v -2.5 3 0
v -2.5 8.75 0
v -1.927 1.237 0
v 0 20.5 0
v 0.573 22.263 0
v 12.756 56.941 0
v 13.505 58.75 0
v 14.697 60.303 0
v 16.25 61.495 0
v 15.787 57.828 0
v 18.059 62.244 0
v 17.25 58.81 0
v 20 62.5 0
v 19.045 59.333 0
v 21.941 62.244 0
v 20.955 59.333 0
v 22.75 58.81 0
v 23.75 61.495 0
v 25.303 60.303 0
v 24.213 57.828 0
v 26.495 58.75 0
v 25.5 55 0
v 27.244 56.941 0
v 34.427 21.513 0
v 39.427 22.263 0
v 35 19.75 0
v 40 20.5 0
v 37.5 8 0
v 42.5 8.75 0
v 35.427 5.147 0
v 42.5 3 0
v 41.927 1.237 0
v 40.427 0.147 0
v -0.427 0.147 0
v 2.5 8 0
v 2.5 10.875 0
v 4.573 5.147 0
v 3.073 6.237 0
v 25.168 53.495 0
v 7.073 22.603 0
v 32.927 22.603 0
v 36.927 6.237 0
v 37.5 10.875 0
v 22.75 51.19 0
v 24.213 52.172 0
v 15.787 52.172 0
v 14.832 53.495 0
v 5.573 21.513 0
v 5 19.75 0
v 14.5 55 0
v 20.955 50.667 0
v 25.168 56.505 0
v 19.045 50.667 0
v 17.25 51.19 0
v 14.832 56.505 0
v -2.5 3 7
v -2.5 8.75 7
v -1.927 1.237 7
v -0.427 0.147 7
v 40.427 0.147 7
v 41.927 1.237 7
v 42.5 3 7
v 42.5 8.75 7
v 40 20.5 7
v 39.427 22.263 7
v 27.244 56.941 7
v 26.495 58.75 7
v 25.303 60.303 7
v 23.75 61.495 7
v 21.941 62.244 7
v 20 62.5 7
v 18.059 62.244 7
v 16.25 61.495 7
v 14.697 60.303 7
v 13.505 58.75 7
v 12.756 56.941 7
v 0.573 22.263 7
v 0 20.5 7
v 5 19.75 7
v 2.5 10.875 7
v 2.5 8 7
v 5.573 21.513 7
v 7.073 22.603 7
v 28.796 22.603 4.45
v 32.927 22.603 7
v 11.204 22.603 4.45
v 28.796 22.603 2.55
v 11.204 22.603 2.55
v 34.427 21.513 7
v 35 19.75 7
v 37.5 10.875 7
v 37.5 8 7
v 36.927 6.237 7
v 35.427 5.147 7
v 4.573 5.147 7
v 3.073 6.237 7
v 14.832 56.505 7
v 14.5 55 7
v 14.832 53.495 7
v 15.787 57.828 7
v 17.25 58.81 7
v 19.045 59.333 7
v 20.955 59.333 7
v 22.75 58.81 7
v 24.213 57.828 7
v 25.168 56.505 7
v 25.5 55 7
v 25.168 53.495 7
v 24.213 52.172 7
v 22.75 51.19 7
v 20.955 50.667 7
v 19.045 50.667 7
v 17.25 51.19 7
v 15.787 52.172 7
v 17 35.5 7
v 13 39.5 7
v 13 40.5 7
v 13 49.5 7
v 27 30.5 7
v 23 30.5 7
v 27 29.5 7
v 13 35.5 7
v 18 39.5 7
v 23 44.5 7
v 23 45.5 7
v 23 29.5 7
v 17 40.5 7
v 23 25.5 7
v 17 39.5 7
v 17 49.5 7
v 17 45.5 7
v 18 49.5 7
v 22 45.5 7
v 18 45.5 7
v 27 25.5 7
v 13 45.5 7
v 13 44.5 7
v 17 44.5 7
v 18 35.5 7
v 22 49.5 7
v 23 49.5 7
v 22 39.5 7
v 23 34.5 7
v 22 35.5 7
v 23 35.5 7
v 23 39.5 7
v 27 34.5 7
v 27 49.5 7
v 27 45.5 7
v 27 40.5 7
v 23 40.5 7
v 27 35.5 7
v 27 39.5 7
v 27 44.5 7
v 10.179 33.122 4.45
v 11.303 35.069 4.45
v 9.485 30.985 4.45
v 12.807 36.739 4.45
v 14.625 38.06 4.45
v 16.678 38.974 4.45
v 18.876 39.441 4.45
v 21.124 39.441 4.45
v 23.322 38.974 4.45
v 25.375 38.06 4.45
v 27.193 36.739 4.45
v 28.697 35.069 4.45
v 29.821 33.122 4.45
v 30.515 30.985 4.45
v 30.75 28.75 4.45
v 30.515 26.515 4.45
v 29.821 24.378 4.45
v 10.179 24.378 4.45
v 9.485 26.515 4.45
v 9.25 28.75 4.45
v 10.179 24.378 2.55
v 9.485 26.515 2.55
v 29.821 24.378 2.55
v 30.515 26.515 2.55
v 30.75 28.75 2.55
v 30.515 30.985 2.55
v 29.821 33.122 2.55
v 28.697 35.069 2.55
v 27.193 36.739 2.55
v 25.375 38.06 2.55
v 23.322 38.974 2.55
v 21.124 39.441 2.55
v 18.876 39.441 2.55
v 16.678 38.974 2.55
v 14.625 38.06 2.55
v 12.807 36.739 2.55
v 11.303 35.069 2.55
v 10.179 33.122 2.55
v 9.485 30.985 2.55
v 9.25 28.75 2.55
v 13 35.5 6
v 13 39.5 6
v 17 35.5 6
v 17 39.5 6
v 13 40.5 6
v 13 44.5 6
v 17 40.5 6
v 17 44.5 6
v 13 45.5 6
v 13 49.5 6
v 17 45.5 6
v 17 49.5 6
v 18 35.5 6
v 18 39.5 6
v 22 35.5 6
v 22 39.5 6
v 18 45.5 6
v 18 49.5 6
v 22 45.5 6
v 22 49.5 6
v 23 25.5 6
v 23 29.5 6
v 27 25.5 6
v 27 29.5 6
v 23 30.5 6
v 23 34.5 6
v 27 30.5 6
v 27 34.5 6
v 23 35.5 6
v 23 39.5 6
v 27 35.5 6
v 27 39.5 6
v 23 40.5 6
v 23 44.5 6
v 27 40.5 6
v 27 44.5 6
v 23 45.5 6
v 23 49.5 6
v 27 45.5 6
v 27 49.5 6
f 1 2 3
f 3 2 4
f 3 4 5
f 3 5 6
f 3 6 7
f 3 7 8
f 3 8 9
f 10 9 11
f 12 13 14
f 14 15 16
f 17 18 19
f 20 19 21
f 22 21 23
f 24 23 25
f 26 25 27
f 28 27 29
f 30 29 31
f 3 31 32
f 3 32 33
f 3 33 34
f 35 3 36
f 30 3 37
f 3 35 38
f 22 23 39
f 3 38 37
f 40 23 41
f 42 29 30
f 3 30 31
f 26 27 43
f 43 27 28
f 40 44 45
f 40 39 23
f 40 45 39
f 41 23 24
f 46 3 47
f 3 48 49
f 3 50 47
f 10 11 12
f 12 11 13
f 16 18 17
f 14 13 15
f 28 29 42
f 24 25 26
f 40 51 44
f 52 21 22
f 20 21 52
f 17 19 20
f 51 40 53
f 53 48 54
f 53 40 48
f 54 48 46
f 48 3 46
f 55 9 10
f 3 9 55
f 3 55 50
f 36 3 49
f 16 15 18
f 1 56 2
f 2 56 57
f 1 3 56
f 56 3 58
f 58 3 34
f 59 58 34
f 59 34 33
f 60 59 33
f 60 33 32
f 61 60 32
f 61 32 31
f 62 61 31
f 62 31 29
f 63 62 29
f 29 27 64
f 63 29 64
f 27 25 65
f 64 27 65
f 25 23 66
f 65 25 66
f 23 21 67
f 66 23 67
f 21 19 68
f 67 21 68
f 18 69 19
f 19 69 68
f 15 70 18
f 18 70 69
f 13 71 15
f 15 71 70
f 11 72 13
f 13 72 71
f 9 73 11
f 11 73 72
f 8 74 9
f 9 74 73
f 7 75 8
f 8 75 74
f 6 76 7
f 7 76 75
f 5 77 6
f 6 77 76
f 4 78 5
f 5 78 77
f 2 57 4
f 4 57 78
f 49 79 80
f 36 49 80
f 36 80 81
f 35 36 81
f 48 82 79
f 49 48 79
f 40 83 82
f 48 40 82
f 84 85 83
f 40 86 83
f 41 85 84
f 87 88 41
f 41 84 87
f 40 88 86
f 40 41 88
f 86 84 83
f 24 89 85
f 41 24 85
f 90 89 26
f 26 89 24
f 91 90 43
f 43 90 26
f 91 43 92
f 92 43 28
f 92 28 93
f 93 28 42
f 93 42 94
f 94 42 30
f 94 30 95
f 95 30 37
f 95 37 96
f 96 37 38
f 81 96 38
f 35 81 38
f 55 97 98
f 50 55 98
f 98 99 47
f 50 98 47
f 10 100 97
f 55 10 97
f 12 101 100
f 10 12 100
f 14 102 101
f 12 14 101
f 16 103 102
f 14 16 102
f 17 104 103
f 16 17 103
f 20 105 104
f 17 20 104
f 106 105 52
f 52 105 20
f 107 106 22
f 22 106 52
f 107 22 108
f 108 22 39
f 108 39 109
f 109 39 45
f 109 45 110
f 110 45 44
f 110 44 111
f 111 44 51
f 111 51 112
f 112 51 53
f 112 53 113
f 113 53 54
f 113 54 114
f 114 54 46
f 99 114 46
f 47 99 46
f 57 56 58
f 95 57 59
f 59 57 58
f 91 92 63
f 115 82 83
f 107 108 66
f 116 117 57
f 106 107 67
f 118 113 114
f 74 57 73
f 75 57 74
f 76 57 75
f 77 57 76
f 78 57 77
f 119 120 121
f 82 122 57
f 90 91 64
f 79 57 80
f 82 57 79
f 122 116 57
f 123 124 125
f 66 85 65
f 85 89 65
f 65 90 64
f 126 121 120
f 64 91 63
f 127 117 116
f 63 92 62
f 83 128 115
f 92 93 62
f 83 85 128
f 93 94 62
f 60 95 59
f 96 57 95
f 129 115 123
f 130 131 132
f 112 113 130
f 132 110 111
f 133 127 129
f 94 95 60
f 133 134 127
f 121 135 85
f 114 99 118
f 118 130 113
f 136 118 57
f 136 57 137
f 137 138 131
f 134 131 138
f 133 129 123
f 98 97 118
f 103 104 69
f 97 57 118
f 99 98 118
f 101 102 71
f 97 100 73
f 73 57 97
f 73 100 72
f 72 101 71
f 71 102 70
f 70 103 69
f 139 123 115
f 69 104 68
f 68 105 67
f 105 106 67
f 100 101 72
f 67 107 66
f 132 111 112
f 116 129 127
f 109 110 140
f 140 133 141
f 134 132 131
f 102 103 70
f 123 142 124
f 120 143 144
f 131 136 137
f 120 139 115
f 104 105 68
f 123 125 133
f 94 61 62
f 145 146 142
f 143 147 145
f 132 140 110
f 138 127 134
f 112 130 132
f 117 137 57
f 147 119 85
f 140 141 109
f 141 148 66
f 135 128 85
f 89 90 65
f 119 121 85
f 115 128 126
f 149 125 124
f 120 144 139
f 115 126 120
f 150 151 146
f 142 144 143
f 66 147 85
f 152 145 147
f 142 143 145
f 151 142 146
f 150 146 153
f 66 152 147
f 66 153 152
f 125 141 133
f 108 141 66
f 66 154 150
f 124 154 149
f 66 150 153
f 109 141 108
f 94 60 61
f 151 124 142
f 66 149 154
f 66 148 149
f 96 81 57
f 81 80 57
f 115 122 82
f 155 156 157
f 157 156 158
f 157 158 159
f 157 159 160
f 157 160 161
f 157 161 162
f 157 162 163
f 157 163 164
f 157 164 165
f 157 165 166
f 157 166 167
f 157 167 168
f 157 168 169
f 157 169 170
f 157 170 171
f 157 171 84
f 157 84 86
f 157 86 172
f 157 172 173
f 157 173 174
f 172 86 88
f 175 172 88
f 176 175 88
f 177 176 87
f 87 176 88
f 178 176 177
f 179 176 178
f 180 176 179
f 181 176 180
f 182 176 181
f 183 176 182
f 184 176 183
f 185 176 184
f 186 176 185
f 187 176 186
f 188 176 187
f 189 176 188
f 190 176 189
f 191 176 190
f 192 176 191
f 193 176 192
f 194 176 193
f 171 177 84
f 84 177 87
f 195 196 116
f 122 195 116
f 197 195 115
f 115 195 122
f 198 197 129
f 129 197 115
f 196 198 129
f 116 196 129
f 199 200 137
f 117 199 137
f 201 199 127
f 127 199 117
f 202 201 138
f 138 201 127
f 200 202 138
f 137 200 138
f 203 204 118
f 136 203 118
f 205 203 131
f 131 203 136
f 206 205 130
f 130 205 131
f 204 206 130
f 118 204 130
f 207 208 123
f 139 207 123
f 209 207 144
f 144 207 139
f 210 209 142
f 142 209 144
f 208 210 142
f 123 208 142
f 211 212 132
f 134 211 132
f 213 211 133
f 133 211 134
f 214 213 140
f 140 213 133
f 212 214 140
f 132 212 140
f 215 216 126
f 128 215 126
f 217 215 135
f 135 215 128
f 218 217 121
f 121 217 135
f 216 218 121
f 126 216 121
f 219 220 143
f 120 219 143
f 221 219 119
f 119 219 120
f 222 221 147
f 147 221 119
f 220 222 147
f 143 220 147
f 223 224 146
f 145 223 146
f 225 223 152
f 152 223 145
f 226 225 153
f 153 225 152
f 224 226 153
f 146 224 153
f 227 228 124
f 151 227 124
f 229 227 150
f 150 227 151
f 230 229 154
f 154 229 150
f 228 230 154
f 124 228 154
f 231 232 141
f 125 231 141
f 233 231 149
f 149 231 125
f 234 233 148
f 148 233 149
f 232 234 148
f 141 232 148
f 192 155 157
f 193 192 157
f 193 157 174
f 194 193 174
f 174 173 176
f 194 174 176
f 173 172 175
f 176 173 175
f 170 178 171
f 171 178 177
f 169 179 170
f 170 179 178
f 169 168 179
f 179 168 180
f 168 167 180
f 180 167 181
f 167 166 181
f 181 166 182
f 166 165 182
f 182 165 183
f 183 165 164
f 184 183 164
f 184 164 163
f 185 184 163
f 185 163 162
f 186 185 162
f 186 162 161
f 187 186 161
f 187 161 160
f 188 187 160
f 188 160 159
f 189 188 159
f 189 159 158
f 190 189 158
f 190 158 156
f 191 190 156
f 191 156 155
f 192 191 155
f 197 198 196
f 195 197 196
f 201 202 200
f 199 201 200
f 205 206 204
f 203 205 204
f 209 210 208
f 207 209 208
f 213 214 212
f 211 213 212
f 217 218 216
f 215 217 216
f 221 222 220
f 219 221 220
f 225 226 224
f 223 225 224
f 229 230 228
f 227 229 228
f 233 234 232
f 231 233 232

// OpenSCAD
// file: drawBitmap.scad
/**
 * drawBitmap module
 * By Niek Blankers <niek@niekproductions.com>
 *
 * @param	array		bits			Bitmap array
 * @param	decimal	cubeSpacing	
 * @param	decimal	cubeSize
 *
 * Example:
 *
	bits=[
	[1,0,0],
	[1,0,0],
	[1,1,1],
	[1,0,1],
	[1,1,1]
	];
	cubeSize = 4;
	cubeSpacing = 5;

	drawBitmap(bits, cubeSpacing, cubeSize);
 *
 */

module drawBitmap(bits, cubeSpacing, cubeSize){
	rotate(a=180, v=[1,0,0]){
		for(i=[0:len(bits)-1]){
			translate([0,i*cubeSpacing,0]){
				cube(size = bits[i][0]*cubeSize, center = true);
				translate([cubeSpacing,0,0]) cube(size = bits[i][1]*cubeSize, center = true);
				translate([2*cubeSpacing,0,0]) cube(size = bits[i][2]*cubeSize, center = true);
			}
		}
	}
}
// main file
/**
 * Coin bottle opener
 * Designed by Niek Blankers <niek@niekproductions.com>
 * 
 * Set fill to 90-100% for best results.
 * Insert coin during printing!
 * 
 */
include <drawBitmap.scad>;


/**
 * 50 euro cent coin:
 * Diameter: 24.5
 * Thickness: 2.5
 * 
 * 5 euro cent coin:
 * Diameter: 21.5
 * Thickness: 1.9
 */

coinDiameter = 21.5;
coinThickness = 1.9;
coinOffset = 6;
coinAngle = 0;

width=40;
length=70;
height=7;

frontWidth=45;

roundRadius=3;

edgeWidth=5;

openingWidth=width-(edgeWidth*2);
openingLength=13+coinDiameter/2-coinOffset;
openingHeight=height;
frontOpeningWidth=openingWidth+5;

backWidth = 15;
frontLength = openingLength+edgeWidth+coinDiameter/2-10;

chainHole = backWidth-4; //Keychain hole diameter

// For the Bitmap
bits=[
	[1,0,0],
	[1,0,0],
	[1,1,1],
	[1,0,1],
	[1,1,1]
];

cubeSize = 4;
cubeSpacing = 5;


module handle(){
	difference(){
		hull(){
				translate([-(frontWidth-width)/2,0,0]) roundedRect([frontWidth,frontLength/2,height], roundRadius);
				translate([0,frontLength/2,0]) roundedRect([width,frontLength/2,height], roundRadius);
				translate([width/2,length-backWidth,height/2]) cylinder(h=height, d=backWidth, center=true);
		}
		translate([width/2 + cubeSpacing,frontLength + (length-frontLength)/((length-frontLength)/cubeSize),height+1]) rotate(a=[0,0,180]) drawBitmap(bits, cubeSpacing, cubeSize);
	}
}

module logo(){
	
}

module opener(){

	difference(){

		handle();

		translate([(width/2)-(openingWidth/2),edgeWidth,-1]) hull(){
			translate([-(frontOpeningWidth-openingWidth)/2,0,0]) roundedRect([frontOpeningWidth,openingLength/2,openingHeight+2], roundRadius);
			translate([0,openingLength/2,0]) roundedRect([openingWidth,openingLength/2,openingHeight+2], roundRadius);
		}

		#translate([width/2,edgeWidth+openingLength+coinOffset,height/2]) rotate(a=-coinAngle,v=[1,0,0]){
			cylinder(h = coinThickness, d = coinDiameter, center = true);
		}

		translate([width/2,length-backWidth,height/2]) scale([1.0,0.8,1.0]) cylinder(h=height+1, d=chainHole, center=true);

	}	

}

opener();



module roundedRect(size, radius) { // from http://www.thingiverse.com/thing:9347/#comments
	x = size[0];
	y = size[1];
	z = size[2];
	
	linear_extrude(height=z)
		hull() {
			translate([radius, radius, 0])
			circle(r=radius);
	
			translate([x - radius, radius, 0])
			circle(r=radius);
	
			translate([x - radius, y - radius, 0])
			circle(r=radius);
	
			translate([radius, y - radius, 0])
			circle(r=radius);
	}
}
